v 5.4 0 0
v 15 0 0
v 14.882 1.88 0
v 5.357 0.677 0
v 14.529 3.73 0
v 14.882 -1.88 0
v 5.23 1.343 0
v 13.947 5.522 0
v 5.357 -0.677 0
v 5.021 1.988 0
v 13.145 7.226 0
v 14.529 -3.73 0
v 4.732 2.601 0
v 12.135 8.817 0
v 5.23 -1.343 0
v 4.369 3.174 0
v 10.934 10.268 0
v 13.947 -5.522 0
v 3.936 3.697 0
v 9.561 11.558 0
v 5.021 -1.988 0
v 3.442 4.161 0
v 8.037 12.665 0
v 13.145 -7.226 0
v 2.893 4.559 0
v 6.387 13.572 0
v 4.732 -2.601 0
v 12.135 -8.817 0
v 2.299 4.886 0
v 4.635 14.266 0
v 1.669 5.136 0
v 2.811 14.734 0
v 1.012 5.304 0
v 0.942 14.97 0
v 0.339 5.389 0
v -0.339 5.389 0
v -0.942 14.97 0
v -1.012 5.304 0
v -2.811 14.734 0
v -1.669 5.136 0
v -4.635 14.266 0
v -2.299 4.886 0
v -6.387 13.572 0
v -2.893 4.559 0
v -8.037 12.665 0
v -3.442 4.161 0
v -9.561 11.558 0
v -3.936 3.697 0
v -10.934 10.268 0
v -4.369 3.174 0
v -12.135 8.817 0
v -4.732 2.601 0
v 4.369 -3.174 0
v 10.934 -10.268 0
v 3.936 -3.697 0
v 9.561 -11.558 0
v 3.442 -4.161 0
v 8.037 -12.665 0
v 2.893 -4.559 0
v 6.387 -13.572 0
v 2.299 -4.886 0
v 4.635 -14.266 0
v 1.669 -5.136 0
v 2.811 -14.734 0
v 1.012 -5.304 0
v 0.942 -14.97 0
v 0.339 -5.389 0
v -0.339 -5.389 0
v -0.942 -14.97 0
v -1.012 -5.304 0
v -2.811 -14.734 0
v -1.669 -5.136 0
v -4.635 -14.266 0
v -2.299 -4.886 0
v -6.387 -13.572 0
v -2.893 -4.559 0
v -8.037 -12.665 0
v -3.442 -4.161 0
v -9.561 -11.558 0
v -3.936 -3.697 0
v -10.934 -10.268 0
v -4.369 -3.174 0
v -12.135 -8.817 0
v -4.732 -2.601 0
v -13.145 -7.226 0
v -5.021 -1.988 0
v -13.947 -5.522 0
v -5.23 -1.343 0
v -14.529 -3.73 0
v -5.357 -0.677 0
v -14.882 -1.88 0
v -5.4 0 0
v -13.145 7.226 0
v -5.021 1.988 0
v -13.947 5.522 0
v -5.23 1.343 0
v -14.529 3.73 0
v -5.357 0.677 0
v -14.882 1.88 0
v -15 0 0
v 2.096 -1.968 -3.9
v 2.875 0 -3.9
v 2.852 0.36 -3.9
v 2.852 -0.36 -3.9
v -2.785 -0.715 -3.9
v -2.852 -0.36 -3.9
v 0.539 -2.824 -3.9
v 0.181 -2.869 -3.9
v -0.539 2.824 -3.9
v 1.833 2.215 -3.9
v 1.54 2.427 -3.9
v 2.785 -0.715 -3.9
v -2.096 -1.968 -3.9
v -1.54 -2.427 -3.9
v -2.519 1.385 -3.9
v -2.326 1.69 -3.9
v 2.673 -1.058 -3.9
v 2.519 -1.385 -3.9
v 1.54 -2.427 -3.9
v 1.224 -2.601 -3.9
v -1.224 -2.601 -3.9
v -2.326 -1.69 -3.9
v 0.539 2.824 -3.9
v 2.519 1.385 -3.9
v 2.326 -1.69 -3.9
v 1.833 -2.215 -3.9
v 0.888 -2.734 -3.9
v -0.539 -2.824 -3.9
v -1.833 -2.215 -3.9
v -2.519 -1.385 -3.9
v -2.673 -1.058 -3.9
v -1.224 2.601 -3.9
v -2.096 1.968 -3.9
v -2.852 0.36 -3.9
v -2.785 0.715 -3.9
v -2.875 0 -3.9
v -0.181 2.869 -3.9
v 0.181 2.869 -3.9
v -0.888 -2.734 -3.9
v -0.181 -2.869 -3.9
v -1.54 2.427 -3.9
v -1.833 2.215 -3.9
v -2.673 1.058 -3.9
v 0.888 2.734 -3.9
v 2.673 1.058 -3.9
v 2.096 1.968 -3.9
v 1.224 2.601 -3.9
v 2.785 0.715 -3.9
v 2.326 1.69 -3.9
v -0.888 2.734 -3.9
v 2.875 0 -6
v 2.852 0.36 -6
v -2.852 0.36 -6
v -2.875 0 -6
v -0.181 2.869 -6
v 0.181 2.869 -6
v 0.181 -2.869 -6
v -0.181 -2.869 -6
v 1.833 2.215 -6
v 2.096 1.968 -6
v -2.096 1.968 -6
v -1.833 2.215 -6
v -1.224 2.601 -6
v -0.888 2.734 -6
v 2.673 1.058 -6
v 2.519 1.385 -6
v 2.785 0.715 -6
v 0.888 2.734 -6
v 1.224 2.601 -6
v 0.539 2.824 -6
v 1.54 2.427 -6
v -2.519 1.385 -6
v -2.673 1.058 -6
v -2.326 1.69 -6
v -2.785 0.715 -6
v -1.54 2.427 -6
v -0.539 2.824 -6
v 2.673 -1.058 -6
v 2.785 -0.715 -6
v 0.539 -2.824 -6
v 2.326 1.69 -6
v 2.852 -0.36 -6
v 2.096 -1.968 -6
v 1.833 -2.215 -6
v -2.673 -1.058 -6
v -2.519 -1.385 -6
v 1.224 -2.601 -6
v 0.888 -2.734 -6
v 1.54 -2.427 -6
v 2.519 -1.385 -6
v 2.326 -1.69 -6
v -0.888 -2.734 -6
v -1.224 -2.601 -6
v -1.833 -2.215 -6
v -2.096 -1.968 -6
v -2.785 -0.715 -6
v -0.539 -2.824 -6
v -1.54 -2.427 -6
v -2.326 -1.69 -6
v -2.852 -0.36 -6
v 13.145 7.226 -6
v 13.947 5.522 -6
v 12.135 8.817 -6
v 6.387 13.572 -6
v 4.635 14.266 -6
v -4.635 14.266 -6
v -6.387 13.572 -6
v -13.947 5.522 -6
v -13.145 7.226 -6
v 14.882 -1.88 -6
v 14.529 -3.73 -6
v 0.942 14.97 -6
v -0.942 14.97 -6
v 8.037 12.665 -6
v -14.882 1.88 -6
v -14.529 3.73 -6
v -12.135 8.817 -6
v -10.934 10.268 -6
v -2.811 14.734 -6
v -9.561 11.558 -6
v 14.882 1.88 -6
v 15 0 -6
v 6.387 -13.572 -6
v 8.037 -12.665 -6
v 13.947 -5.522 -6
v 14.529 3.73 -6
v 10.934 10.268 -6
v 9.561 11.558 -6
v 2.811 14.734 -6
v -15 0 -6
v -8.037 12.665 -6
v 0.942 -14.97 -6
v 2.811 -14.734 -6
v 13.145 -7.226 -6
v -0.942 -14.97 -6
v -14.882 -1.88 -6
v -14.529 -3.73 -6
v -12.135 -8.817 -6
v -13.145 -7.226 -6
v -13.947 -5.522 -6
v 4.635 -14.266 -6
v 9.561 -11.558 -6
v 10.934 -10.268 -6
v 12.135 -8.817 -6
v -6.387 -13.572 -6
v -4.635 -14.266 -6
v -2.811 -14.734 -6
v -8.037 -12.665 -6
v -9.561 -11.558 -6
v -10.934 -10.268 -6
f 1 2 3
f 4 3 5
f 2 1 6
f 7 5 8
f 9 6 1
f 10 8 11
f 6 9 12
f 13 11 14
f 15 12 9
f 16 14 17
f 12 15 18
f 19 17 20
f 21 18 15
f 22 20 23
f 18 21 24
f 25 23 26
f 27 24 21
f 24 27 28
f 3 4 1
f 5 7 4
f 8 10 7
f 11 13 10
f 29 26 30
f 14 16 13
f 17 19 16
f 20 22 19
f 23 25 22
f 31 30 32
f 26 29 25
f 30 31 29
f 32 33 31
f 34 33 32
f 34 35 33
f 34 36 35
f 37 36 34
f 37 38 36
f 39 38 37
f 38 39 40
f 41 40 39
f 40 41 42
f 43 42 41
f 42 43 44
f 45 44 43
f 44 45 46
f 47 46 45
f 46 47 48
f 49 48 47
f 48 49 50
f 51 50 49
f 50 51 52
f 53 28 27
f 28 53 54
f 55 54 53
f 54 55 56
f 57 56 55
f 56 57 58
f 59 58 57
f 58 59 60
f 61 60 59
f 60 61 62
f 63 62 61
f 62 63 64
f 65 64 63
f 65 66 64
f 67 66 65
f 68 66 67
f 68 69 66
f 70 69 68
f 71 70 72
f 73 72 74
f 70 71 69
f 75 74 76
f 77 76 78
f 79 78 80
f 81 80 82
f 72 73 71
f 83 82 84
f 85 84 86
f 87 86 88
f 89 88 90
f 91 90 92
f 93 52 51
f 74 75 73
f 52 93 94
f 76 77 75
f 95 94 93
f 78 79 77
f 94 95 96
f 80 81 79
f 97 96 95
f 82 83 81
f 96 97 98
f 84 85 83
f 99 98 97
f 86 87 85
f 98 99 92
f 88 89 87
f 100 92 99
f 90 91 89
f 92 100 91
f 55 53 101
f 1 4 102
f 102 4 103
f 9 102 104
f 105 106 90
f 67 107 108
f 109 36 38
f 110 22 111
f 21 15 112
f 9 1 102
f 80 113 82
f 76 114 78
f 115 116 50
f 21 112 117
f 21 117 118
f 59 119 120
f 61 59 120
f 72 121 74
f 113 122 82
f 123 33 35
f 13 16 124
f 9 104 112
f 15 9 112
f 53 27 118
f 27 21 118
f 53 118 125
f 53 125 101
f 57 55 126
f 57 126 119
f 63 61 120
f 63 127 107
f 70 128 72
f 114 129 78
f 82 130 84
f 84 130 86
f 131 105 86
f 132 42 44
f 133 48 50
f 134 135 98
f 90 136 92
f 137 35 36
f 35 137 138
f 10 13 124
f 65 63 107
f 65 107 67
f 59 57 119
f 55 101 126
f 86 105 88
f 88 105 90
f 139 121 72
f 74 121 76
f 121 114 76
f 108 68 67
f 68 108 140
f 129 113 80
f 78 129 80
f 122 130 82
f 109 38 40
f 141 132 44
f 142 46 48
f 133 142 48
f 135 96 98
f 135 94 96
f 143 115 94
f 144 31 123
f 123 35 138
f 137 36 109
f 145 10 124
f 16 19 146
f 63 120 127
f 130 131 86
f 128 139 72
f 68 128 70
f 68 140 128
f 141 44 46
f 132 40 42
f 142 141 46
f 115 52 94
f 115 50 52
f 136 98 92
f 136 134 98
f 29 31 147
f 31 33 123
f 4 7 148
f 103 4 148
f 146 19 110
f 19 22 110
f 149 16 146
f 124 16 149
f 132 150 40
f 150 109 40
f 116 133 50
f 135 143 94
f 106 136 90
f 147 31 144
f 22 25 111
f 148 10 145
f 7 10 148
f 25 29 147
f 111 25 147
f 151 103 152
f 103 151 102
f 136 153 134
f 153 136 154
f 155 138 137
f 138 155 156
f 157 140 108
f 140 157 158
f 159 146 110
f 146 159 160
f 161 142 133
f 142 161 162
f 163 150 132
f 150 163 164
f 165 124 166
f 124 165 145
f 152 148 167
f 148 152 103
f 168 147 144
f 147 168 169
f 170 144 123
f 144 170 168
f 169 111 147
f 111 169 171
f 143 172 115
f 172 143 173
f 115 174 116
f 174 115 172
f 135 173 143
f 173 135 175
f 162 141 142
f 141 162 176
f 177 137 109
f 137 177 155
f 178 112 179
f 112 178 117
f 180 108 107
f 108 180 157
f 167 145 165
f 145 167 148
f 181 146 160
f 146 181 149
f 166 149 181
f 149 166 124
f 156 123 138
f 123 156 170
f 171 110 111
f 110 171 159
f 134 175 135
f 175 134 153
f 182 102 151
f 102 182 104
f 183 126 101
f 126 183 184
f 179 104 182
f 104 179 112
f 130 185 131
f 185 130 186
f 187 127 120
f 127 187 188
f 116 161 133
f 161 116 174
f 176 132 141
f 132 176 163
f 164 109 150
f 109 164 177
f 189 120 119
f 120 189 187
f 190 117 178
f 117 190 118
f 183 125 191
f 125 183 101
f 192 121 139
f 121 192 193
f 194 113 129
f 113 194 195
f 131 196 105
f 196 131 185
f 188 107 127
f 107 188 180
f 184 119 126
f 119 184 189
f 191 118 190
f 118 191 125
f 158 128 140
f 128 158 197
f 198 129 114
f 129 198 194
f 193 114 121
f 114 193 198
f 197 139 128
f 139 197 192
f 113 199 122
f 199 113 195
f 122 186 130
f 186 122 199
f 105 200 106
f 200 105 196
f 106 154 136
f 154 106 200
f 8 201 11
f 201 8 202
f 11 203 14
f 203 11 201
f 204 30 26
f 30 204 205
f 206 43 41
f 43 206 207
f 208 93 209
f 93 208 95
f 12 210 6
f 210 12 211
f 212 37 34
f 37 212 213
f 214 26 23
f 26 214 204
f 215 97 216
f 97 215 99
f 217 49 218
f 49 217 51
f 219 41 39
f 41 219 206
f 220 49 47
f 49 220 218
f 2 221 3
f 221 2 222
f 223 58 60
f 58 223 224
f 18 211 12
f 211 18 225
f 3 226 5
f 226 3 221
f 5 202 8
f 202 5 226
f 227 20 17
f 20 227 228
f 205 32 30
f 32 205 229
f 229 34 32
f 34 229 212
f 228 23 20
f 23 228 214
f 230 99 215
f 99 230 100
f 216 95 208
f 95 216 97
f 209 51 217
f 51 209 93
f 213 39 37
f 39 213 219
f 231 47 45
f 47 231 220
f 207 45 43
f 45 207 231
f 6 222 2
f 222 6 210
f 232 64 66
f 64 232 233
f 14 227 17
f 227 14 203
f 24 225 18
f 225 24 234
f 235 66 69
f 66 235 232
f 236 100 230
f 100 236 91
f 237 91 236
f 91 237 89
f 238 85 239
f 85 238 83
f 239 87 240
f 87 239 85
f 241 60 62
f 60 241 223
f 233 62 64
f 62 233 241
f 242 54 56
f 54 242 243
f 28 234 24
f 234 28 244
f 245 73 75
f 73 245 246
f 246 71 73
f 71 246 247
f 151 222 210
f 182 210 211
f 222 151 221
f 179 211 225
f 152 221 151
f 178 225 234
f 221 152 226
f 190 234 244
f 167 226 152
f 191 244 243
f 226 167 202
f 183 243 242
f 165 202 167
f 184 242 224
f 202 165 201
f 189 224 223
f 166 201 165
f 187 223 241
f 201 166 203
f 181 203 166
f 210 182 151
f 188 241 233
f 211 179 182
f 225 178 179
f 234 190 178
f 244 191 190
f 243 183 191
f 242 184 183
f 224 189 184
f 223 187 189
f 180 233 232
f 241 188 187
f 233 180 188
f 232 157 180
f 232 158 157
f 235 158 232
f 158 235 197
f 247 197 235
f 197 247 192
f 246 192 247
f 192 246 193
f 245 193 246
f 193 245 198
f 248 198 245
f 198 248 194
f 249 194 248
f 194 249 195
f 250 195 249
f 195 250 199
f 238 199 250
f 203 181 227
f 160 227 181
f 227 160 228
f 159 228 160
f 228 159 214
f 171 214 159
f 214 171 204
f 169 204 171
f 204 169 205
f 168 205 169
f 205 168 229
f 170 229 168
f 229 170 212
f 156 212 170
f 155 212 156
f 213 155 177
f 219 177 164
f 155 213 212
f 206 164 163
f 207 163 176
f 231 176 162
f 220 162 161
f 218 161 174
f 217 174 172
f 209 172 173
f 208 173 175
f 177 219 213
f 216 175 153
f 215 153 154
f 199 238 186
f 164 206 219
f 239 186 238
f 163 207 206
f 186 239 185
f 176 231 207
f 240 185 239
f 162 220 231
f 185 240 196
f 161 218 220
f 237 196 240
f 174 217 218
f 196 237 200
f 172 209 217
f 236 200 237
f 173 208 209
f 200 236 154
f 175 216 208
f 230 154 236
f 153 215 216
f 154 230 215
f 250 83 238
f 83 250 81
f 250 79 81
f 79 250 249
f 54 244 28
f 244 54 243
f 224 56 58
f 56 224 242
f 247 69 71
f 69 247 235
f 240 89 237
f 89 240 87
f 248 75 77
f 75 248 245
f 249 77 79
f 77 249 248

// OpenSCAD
$fn = 50;


difference() {
	union() {
		translate(v = [0, 0, -6.0000000000]) {
			cylinder(h = 6, r = 15.0000000000);
		}
	}
	union() {
		translate(v = [0, 0, 0]) {
			rotate(a = [0, 0, 0]) {
				difference() {
					union() {
						translate(v = [0, 0, -9.0000000000]) {
							cylinder(h = 9, r = 2.6000000000);
						}
						translate(v = [0, 0, -3.9000000000]) {
							cylinder(h = 3.9000000000, r1 = 2.8750000000, r2 = 5.4000000000);
						}
						translate(v = [0, 0, -9.0000000000]) {
							cylinder(h = 9, r = 2.8750000000);
						}
						translate(v = [0, 0, -9.0000000000]) {
							cylinder(h = 9, r = 2.6000000000);
						}
					}
					union();
				}
			}
		}
	}
}
